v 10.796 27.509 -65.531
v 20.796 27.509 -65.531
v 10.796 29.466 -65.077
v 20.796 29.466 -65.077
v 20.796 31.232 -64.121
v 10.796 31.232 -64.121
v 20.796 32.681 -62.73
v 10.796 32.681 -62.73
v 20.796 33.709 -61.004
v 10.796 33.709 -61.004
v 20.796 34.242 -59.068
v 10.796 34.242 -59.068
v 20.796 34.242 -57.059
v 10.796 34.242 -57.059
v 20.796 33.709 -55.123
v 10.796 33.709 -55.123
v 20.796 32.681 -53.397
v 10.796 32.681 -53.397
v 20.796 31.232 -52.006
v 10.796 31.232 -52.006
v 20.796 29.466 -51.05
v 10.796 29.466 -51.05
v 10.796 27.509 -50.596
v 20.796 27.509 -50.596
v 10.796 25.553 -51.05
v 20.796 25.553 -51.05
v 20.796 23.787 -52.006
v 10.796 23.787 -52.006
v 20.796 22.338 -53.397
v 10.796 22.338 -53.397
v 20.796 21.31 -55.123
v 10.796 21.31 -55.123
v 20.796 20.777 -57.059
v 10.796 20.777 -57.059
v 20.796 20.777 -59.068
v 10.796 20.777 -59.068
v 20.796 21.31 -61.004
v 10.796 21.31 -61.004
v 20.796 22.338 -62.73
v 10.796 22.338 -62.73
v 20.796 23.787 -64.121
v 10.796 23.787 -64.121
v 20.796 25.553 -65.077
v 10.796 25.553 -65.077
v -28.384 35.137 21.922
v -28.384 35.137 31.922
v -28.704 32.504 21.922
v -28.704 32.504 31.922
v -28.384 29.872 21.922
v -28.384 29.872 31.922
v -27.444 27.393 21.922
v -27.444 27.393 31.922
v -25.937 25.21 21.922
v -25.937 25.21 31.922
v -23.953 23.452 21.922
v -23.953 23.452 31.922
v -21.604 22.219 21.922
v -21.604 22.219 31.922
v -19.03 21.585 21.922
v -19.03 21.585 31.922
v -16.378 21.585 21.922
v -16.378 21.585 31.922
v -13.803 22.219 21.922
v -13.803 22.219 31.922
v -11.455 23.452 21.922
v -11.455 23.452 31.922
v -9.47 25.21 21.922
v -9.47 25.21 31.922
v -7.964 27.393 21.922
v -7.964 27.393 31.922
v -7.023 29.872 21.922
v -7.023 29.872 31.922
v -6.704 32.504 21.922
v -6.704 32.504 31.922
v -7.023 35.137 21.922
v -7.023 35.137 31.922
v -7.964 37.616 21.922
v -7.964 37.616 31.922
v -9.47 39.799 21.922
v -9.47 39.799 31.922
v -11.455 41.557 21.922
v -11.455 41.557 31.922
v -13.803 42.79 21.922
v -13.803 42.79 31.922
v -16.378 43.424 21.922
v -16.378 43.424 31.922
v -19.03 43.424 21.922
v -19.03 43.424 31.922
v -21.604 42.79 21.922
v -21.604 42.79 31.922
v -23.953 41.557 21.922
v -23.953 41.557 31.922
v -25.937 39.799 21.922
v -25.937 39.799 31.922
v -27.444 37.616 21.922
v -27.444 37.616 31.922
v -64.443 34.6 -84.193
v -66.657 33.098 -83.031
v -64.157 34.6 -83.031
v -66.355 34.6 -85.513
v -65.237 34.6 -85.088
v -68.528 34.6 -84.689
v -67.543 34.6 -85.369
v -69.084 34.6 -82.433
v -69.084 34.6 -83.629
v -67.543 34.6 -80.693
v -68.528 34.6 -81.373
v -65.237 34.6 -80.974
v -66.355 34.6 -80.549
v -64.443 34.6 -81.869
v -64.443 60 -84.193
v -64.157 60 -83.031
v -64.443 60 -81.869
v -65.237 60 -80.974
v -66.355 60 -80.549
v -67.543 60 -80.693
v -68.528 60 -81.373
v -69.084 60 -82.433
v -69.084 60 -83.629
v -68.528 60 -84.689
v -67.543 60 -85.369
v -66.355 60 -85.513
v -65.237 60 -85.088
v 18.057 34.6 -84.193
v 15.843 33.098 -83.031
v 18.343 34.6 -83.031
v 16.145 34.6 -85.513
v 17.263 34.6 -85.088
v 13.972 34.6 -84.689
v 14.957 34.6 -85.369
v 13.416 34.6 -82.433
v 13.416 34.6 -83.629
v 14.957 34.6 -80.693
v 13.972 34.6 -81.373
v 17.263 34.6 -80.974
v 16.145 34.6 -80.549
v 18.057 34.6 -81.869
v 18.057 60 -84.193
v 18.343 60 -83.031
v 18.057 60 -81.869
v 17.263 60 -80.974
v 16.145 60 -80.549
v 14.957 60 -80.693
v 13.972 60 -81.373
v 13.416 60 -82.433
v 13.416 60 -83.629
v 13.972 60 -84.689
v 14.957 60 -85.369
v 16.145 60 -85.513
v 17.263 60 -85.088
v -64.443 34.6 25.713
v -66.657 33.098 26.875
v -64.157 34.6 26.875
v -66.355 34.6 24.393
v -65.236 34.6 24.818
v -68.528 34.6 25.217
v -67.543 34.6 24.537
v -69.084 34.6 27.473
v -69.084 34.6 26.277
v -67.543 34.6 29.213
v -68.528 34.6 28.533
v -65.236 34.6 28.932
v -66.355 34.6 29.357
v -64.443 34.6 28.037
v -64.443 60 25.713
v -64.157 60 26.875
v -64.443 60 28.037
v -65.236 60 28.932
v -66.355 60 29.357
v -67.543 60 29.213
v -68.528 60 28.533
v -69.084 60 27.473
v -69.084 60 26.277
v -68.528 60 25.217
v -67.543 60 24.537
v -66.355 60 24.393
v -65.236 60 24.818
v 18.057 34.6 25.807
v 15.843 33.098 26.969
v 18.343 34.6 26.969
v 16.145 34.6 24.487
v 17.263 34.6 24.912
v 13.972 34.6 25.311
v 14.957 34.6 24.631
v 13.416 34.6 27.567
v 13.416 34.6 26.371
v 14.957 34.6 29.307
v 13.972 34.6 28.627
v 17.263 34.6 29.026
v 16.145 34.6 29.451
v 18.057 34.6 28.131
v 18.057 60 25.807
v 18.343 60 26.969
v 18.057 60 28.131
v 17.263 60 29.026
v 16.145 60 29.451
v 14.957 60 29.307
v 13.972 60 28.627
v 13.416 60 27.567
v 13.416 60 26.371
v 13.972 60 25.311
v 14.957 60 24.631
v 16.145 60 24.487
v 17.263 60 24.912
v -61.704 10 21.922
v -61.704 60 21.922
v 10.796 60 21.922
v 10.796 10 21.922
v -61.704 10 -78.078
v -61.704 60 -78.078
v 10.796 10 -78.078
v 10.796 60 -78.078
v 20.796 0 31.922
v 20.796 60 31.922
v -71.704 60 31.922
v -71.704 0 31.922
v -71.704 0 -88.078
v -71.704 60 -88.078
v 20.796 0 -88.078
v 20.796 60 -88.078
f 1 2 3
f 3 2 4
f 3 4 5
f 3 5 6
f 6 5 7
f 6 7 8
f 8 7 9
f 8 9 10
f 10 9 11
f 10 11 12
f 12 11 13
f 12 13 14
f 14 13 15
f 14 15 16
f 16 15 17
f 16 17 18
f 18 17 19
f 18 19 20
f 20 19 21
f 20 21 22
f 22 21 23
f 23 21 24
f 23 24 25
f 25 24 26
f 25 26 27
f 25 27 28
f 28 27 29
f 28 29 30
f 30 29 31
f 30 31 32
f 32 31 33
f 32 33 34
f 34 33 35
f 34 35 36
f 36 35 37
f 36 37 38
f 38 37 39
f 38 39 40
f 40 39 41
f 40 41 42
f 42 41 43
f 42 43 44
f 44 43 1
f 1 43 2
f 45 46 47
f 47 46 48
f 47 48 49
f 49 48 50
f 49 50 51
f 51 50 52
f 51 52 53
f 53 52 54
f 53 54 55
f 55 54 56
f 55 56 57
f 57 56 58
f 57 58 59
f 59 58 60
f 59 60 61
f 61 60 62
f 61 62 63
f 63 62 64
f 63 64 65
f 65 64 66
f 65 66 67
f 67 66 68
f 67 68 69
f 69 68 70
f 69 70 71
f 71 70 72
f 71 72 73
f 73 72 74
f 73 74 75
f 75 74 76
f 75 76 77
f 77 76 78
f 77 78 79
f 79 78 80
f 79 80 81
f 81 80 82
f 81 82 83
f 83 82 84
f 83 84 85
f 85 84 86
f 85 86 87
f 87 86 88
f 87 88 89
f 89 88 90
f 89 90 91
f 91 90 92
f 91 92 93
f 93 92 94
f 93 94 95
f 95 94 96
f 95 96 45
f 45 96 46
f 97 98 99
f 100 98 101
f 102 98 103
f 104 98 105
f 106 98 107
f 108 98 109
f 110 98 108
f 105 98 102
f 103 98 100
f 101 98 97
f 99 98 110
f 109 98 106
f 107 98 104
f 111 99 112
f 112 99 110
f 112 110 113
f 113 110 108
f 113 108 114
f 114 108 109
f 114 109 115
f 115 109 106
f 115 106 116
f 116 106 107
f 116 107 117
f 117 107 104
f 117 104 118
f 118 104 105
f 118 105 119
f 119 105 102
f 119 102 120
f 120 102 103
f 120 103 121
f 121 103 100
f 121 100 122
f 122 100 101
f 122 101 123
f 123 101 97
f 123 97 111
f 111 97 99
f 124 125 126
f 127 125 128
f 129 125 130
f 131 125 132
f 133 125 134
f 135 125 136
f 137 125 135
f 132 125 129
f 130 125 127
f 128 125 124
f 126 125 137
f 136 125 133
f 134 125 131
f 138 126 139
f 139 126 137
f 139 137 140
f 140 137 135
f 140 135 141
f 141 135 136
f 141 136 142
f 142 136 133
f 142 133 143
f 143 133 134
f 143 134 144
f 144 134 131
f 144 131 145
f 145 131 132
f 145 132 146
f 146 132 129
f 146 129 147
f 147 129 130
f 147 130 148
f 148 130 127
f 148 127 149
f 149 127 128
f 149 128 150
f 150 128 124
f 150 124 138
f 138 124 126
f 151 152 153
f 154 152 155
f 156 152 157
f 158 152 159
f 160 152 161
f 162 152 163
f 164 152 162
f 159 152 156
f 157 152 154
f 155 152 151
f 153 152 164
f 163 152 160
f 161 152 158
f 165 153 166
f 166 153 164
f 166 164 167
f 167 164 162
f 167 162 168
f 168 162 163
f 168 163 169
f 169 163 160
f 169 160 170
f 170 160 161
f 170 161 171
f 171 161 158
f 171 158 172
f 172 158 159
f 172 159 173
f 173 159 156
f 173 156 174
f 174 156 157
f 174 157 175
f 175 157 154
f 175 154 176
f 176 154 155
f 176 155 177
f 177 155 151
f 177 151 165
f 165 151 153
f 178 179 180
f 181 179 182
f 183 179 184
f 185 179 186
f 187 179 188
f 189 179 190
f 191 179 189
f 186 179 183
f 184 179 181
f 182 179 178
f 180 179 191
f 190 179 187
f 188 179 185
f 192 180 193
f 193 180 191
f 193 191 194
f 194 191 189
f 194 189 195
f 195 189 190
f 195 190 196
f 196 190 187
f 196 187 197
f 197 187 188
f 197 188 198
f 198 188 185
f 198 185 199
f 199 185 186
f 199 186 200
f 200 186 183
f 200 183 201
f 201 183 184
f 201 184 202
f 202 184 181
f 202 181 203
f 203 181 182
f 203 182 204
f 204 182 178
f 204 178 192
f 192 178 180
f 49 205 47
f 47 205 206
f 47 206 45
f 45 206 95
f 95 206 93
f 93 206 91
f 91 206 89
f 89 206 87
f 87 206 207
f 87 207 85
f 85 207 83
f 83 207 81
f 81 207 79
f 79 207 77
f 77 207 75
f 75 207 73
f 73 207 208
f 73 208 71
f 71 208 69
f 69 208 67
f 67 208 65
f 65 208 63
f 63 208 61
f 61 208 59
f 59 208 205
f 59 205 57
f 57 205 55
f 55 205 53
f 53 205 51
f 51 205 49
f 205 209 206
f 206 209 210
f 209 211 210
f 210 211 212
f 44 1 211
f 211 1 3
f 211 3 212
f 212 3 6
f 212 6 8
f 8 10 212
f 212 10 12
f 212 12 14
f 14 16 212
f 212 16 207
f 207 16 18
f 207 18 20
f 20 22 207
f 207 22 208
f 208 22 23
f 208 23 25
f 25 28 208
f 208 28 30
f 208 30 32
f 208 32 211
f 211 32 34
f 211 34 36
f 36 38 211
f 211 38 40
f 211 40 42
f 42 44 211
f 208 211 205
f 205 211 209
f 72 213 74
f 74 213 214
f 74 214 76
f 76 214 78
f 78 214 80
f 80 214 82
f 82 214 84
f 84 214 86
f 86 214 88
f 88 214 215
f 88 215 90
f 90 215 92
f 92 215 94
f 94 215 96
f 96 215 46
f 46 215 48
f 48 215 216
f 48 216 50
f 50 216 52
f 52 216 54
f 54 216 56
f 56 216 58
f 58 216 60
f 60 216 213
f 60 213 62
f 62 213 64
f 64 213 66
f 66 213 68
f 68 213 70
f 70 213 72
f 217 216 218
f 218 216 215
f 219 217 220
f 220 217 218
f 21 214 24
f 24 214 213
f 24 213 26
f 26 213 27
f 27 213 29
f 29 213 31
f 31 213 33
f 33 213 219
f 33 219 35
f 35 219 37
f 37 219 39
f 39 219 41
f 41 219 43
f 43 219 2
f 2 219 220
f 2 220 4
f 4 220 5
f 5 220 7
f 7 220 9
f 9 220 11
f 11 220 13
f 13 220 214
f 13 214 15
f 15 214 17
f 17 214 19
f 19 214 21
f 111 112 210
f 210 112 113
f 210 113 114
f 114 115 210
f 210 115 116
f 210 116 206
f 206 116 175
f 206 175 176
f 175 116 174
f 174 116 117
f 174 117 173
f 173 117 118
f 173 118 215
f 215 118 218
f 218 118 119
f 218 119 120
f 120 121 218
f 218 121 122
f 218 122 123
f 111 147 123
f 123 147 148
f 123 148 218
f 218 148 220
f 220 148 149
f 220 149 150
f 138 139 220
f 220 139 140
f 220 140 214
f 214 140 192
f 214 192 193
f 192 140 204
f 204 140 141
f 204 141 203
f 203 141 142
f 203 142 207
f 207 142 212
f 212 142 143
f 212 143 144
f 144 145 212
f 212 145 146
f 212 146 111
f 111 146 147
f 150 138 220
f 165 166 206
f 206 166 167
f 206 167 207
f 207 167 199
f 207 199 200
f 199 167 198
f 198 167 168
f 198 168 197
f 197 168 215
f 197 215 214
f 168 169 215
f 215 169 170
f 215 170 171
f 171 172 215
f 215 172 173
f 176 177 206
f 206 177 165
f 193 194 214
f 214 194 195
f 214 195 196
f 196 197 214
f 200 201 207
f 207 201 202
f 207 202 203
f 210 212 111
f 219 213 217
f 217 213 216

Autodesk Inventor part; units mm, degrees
ref_plane "YZ Plane" through (0, 0, 0) normal (1, 0, 0) x (0, 1, 0)
ref_plane "XZ Plane" through (0, 0, 0) normal (0, 1, 0) x (-1, 0, 0)
ref_plane "XY Plane" through (0, 0, 0) normal (0, 0, 1) x (1, 0, 0)
sketch "Sketch1" plane through (0, 0, 0) normal (0, 1, 0) x (-1, 0, 0)
  line L0 (71.7038, 31.922) -> (71.7038, -88.078)
  line L1 (71.7038, -88.078) -> (-20.7962, -88.078)
  line L2 (-20.7962, -88.078) -> (-20.7962, 31.922)
  line L3 (-20.7962, 31.922) -> (71.7038, 31.922)
  point P0 (0, 0)
  dimension "d0" = 120
  dimension "d1" = 92.5
extrude "Extrusion1" add sketch "Sketch1" along normal blind 60
shell "Shell2" thickness 10 removed faces 1 at (-10.0371, 60, -48.078)
sketch "Sketch12" plane through (0, 60, 0) normal (0, 1, 0) x (1, 0, 0)
  line L0 (10.7962, 78.078) -> (10.7962, -21.922) projected
  line L1 (10.7962, -21.922) -> (20.7962, -21.922)
  line L2 (20.7962, -31.922) -> (20.7962, 88.078) projected
  line L3 (20.7962, -21.922) -> (20.7962, -31.922)
  line L4 (20.7962, -31.922) -> (10.7962, -31.922)
  line L5 (10.7962, -31.922) -> (10.7962, -21.922)
  line L6 (20.7962, -31.922) -> (15.8432, -31.922)
  line L7 (-71.7038, -31.922) -> (20.7962, -31.922) projected
  line L8 (15.8432, -26.969) -> (20.7962, -26.969)
  line L9 (15.8432, -26.969) -> (15.8432, -31.922)
  point P0 (0, 0)
  dimension "d124" = 4.953
  dimension "d125" = 4.953
hole "Hole11" at (15.8432, 60, 26.969) direction (0, -1, 0) diameter 5 depth 25.4 tip angle 118
sketch "Sketch19" plane through (0, 60, 0) normal (0, 1, 0) x (1, 0, 0)
  line L0 (10.7962, -21.922) -> (-61.7038, -21.922) projected
  line L1 (-61.7038, -21.922) -> (-61.7038, -31.922)
  line L2 (-71.7038, -31.922) -> (20.7962, -31.922) projected
  line L3 (-71.7038, -31.922) -> (-71.7038, -21.922)
  line L4 (-71.7038, 88.078) -> (-71.7038, -31.922) projected
  line L5 (-61.7038, -23.8125) -> (-61.7038, -21.922)
  line L6 (-71.7038, -21.922) -> (-61.7038, -21.922)
  line L7 (-61.7038, -21.922) -> (-61.7038, 78.078) projected
  line L8 (-61.7038, -21.922) -> (-66.7038, -21.922)
  line L9 (-66.6566, -26.875) -> (-61.7038, -26.922)
  line L10 (-66.6566, -26.875) -> (-66.7038, -21.922)
  point P0 (0, 0)
  dimension "d133" = 4.953
  dimension "d134" = 4.953
hole "Hole12" at (-66.6566, 60, 26.875) direction (0, -1, 0) diameter 5 depth 25.4 tip angle 118
sketch "Sketch21" plane through (0, 60, 0) normal (0, 1, 0) x (1, 0, 0)
  line L0 (10.7962, -21.922) -> (10.7962, 78.078) projected
  line L1 (10.7962, 78.078) -> (20.7962, 78.078)
  line L2 (20.7962, -31.922) -> (20.7962, 88.078) projected
  line L3 (20.7962, 88.078) -> (10.7962, 88.078)
  line L4 (20.7962, 88.078) -> (-71.7038, 88.078) projected
  line L5 (10.7962, 78.078) -> (10.7962, 88.078)
  line L6 (10.7962, 78.078) -> (-61.7038, 78.078) projected
  line L7 (10.7962, 78.078) -> (15.7962, 78.078)
  line L8 (15.8432, 83.031) -> (20.7962, 83.031)
  line L9 (15.8432, 83.031) -> (15.7962, 78.078)
  point P0 (0, 0)
  dimension "d146" = 4.953
hole "Hole13" at (15.8432, 60, -83.031) direction (0, -1, 0) diameter 5 depth 25.4 tip angle 118
sketch "Sketch22" plane through (0, 60, 0) normal (0, 1, 0) x (1, 0, 0)
  line L0 (-61.7038, 78.078) -> (10.7962, 78.078) projected
  line L1 (-61.7038, 78.078) -> (-71.7038, 78.078)
  line L2 (-71.7038, 88.078) -> (-71.7038, -31.922) projected
  line L3 (-71.7038, 88.078) -> (-61.7038, 88.078)
  line L4 (20.7962, 88.078) -> (-71.7038, 88.078) projected
  line L5 (-61.7038, 78.078) -> (-61.7038, 88.078)
  line L6 (-61.7038, 78.078) -> (-66.7038, 78.078)
  line L7 (-66.6568, 83.031) -> (-61.7038, 83.031)
  line L8 (-66.6568, 83.031) -> (-66.7038, 78.078)
  point P0 (0, 0)
  dimension "d155" = 4.953
  dimension "d156" = 4.953
hole "Hole14" at (-66.6568, 60, -83.031) direction (0, -1, 0) diameter 5 depth 25.4 tip angle 118
sketch "Sketch23" plane through (-71.7038, 0, 31.922) normal (0, 0, 1) x (1, 0, 0)
  point P0 (71.7038, 0)
sketch "Sketch24" plane through (-71.7038, 0, 31.922) normal (0, 0, 1) x (1, 0, 0)
  line L0 (0, 0) -> (0, 60) projected
  line L1 (0, 60) -> (0, 0)
  line L2 (0, 0) -> (92.5, 0) projected
  line L3 (0, 0) -> (92.5, 0)
  line L4 (92.5, 0) -> (92.5, 60) projected
  line L5 (92.5, 0) -> (92.5, 60)
  line L6 (0, 60) -> (92.5, 60) projected
  line L7 (92.5, 60) -> (0, 60)
  line L8 (0, 32.5045) -> (54, 32.5045)
  line L9 (54, 32.5045) -> (46.25, 60)
  line L10 (82.5, 60) -> (10, 60) projected
  point P0 (71.7038, 0)
  dimension "d164" = 60
  dimension "d165" = 92.5
  dimension "d175" = 54
  dimension "d176" = 27.4955
hole "Hole15" at (-17.7038, 32.5045, 31.922) direction (0, 0, -1) diameter 22 depth 25.4 tip angle 118
sketch "Sketch32" plane through (20.7962, 0, 31.922) normal (1, 0, 0) x (0, 0, -1)
  line L0 (0, 60) -> (120, 60) projected
  line L1 (90, 60) -> (90, 32.5)
  line L2 (90, 32.5) -> (120, 32.5)
  line L3 (120, 0) -> (120, 60) projected
  point P0 (31.922, 0)
  dimension "d189" = 27.5
  dimension "d190" = 30
sketch "Sketch33" plane through (20.7962, 0, 31.922) normal (1, 0, 0) x (0, 0, -1)
  line L0 (89.9856, 20.7094) -> (89.9856, 34.3094) construction
  line L1 (82.4856, 28.2094) -> (82.4856, 26.8094)
  line L2 (97.4856, 26.8094) -> (97.4856, 28.2094)
  arc A0 (82.4856, 28.2094) -> (97.4856, 28.2094) centre (89.9856, 28.2094) ccw
  arc A1 (97.4856, 26.8094) -> (82.4856, 26.8094) centre (89.9856, 26.8094) ccw
  point P0 (31.922, 0)
  point P1 (89.9856, 27.5094)
  point P2 (97.4528, 27.5094)
  point P3 (82.5183, 27.5094)
  dimension "d191" = 13.6
  dimension "d192" = 7.5
extrude "Extrusion2" cut sketch "Sketch33" against normal blind 10 contours A1 A0
sketch "Sketch35" plane through (-71.7038, 0, 31.922) normal (0, 0, 1) x (1, 0, 0)
  circle A0 centre (54, 32.5045) radius 11 projected
  line L0 (43, 32.5045) -> (-0.012, 32.5045)
  line L1 (10, 10) -> (10, 60) projected
  point P0 (71.7038, 0)
  dimension "d195" = 43.012
properties part number "Water_Proof_Box_Bottom"
